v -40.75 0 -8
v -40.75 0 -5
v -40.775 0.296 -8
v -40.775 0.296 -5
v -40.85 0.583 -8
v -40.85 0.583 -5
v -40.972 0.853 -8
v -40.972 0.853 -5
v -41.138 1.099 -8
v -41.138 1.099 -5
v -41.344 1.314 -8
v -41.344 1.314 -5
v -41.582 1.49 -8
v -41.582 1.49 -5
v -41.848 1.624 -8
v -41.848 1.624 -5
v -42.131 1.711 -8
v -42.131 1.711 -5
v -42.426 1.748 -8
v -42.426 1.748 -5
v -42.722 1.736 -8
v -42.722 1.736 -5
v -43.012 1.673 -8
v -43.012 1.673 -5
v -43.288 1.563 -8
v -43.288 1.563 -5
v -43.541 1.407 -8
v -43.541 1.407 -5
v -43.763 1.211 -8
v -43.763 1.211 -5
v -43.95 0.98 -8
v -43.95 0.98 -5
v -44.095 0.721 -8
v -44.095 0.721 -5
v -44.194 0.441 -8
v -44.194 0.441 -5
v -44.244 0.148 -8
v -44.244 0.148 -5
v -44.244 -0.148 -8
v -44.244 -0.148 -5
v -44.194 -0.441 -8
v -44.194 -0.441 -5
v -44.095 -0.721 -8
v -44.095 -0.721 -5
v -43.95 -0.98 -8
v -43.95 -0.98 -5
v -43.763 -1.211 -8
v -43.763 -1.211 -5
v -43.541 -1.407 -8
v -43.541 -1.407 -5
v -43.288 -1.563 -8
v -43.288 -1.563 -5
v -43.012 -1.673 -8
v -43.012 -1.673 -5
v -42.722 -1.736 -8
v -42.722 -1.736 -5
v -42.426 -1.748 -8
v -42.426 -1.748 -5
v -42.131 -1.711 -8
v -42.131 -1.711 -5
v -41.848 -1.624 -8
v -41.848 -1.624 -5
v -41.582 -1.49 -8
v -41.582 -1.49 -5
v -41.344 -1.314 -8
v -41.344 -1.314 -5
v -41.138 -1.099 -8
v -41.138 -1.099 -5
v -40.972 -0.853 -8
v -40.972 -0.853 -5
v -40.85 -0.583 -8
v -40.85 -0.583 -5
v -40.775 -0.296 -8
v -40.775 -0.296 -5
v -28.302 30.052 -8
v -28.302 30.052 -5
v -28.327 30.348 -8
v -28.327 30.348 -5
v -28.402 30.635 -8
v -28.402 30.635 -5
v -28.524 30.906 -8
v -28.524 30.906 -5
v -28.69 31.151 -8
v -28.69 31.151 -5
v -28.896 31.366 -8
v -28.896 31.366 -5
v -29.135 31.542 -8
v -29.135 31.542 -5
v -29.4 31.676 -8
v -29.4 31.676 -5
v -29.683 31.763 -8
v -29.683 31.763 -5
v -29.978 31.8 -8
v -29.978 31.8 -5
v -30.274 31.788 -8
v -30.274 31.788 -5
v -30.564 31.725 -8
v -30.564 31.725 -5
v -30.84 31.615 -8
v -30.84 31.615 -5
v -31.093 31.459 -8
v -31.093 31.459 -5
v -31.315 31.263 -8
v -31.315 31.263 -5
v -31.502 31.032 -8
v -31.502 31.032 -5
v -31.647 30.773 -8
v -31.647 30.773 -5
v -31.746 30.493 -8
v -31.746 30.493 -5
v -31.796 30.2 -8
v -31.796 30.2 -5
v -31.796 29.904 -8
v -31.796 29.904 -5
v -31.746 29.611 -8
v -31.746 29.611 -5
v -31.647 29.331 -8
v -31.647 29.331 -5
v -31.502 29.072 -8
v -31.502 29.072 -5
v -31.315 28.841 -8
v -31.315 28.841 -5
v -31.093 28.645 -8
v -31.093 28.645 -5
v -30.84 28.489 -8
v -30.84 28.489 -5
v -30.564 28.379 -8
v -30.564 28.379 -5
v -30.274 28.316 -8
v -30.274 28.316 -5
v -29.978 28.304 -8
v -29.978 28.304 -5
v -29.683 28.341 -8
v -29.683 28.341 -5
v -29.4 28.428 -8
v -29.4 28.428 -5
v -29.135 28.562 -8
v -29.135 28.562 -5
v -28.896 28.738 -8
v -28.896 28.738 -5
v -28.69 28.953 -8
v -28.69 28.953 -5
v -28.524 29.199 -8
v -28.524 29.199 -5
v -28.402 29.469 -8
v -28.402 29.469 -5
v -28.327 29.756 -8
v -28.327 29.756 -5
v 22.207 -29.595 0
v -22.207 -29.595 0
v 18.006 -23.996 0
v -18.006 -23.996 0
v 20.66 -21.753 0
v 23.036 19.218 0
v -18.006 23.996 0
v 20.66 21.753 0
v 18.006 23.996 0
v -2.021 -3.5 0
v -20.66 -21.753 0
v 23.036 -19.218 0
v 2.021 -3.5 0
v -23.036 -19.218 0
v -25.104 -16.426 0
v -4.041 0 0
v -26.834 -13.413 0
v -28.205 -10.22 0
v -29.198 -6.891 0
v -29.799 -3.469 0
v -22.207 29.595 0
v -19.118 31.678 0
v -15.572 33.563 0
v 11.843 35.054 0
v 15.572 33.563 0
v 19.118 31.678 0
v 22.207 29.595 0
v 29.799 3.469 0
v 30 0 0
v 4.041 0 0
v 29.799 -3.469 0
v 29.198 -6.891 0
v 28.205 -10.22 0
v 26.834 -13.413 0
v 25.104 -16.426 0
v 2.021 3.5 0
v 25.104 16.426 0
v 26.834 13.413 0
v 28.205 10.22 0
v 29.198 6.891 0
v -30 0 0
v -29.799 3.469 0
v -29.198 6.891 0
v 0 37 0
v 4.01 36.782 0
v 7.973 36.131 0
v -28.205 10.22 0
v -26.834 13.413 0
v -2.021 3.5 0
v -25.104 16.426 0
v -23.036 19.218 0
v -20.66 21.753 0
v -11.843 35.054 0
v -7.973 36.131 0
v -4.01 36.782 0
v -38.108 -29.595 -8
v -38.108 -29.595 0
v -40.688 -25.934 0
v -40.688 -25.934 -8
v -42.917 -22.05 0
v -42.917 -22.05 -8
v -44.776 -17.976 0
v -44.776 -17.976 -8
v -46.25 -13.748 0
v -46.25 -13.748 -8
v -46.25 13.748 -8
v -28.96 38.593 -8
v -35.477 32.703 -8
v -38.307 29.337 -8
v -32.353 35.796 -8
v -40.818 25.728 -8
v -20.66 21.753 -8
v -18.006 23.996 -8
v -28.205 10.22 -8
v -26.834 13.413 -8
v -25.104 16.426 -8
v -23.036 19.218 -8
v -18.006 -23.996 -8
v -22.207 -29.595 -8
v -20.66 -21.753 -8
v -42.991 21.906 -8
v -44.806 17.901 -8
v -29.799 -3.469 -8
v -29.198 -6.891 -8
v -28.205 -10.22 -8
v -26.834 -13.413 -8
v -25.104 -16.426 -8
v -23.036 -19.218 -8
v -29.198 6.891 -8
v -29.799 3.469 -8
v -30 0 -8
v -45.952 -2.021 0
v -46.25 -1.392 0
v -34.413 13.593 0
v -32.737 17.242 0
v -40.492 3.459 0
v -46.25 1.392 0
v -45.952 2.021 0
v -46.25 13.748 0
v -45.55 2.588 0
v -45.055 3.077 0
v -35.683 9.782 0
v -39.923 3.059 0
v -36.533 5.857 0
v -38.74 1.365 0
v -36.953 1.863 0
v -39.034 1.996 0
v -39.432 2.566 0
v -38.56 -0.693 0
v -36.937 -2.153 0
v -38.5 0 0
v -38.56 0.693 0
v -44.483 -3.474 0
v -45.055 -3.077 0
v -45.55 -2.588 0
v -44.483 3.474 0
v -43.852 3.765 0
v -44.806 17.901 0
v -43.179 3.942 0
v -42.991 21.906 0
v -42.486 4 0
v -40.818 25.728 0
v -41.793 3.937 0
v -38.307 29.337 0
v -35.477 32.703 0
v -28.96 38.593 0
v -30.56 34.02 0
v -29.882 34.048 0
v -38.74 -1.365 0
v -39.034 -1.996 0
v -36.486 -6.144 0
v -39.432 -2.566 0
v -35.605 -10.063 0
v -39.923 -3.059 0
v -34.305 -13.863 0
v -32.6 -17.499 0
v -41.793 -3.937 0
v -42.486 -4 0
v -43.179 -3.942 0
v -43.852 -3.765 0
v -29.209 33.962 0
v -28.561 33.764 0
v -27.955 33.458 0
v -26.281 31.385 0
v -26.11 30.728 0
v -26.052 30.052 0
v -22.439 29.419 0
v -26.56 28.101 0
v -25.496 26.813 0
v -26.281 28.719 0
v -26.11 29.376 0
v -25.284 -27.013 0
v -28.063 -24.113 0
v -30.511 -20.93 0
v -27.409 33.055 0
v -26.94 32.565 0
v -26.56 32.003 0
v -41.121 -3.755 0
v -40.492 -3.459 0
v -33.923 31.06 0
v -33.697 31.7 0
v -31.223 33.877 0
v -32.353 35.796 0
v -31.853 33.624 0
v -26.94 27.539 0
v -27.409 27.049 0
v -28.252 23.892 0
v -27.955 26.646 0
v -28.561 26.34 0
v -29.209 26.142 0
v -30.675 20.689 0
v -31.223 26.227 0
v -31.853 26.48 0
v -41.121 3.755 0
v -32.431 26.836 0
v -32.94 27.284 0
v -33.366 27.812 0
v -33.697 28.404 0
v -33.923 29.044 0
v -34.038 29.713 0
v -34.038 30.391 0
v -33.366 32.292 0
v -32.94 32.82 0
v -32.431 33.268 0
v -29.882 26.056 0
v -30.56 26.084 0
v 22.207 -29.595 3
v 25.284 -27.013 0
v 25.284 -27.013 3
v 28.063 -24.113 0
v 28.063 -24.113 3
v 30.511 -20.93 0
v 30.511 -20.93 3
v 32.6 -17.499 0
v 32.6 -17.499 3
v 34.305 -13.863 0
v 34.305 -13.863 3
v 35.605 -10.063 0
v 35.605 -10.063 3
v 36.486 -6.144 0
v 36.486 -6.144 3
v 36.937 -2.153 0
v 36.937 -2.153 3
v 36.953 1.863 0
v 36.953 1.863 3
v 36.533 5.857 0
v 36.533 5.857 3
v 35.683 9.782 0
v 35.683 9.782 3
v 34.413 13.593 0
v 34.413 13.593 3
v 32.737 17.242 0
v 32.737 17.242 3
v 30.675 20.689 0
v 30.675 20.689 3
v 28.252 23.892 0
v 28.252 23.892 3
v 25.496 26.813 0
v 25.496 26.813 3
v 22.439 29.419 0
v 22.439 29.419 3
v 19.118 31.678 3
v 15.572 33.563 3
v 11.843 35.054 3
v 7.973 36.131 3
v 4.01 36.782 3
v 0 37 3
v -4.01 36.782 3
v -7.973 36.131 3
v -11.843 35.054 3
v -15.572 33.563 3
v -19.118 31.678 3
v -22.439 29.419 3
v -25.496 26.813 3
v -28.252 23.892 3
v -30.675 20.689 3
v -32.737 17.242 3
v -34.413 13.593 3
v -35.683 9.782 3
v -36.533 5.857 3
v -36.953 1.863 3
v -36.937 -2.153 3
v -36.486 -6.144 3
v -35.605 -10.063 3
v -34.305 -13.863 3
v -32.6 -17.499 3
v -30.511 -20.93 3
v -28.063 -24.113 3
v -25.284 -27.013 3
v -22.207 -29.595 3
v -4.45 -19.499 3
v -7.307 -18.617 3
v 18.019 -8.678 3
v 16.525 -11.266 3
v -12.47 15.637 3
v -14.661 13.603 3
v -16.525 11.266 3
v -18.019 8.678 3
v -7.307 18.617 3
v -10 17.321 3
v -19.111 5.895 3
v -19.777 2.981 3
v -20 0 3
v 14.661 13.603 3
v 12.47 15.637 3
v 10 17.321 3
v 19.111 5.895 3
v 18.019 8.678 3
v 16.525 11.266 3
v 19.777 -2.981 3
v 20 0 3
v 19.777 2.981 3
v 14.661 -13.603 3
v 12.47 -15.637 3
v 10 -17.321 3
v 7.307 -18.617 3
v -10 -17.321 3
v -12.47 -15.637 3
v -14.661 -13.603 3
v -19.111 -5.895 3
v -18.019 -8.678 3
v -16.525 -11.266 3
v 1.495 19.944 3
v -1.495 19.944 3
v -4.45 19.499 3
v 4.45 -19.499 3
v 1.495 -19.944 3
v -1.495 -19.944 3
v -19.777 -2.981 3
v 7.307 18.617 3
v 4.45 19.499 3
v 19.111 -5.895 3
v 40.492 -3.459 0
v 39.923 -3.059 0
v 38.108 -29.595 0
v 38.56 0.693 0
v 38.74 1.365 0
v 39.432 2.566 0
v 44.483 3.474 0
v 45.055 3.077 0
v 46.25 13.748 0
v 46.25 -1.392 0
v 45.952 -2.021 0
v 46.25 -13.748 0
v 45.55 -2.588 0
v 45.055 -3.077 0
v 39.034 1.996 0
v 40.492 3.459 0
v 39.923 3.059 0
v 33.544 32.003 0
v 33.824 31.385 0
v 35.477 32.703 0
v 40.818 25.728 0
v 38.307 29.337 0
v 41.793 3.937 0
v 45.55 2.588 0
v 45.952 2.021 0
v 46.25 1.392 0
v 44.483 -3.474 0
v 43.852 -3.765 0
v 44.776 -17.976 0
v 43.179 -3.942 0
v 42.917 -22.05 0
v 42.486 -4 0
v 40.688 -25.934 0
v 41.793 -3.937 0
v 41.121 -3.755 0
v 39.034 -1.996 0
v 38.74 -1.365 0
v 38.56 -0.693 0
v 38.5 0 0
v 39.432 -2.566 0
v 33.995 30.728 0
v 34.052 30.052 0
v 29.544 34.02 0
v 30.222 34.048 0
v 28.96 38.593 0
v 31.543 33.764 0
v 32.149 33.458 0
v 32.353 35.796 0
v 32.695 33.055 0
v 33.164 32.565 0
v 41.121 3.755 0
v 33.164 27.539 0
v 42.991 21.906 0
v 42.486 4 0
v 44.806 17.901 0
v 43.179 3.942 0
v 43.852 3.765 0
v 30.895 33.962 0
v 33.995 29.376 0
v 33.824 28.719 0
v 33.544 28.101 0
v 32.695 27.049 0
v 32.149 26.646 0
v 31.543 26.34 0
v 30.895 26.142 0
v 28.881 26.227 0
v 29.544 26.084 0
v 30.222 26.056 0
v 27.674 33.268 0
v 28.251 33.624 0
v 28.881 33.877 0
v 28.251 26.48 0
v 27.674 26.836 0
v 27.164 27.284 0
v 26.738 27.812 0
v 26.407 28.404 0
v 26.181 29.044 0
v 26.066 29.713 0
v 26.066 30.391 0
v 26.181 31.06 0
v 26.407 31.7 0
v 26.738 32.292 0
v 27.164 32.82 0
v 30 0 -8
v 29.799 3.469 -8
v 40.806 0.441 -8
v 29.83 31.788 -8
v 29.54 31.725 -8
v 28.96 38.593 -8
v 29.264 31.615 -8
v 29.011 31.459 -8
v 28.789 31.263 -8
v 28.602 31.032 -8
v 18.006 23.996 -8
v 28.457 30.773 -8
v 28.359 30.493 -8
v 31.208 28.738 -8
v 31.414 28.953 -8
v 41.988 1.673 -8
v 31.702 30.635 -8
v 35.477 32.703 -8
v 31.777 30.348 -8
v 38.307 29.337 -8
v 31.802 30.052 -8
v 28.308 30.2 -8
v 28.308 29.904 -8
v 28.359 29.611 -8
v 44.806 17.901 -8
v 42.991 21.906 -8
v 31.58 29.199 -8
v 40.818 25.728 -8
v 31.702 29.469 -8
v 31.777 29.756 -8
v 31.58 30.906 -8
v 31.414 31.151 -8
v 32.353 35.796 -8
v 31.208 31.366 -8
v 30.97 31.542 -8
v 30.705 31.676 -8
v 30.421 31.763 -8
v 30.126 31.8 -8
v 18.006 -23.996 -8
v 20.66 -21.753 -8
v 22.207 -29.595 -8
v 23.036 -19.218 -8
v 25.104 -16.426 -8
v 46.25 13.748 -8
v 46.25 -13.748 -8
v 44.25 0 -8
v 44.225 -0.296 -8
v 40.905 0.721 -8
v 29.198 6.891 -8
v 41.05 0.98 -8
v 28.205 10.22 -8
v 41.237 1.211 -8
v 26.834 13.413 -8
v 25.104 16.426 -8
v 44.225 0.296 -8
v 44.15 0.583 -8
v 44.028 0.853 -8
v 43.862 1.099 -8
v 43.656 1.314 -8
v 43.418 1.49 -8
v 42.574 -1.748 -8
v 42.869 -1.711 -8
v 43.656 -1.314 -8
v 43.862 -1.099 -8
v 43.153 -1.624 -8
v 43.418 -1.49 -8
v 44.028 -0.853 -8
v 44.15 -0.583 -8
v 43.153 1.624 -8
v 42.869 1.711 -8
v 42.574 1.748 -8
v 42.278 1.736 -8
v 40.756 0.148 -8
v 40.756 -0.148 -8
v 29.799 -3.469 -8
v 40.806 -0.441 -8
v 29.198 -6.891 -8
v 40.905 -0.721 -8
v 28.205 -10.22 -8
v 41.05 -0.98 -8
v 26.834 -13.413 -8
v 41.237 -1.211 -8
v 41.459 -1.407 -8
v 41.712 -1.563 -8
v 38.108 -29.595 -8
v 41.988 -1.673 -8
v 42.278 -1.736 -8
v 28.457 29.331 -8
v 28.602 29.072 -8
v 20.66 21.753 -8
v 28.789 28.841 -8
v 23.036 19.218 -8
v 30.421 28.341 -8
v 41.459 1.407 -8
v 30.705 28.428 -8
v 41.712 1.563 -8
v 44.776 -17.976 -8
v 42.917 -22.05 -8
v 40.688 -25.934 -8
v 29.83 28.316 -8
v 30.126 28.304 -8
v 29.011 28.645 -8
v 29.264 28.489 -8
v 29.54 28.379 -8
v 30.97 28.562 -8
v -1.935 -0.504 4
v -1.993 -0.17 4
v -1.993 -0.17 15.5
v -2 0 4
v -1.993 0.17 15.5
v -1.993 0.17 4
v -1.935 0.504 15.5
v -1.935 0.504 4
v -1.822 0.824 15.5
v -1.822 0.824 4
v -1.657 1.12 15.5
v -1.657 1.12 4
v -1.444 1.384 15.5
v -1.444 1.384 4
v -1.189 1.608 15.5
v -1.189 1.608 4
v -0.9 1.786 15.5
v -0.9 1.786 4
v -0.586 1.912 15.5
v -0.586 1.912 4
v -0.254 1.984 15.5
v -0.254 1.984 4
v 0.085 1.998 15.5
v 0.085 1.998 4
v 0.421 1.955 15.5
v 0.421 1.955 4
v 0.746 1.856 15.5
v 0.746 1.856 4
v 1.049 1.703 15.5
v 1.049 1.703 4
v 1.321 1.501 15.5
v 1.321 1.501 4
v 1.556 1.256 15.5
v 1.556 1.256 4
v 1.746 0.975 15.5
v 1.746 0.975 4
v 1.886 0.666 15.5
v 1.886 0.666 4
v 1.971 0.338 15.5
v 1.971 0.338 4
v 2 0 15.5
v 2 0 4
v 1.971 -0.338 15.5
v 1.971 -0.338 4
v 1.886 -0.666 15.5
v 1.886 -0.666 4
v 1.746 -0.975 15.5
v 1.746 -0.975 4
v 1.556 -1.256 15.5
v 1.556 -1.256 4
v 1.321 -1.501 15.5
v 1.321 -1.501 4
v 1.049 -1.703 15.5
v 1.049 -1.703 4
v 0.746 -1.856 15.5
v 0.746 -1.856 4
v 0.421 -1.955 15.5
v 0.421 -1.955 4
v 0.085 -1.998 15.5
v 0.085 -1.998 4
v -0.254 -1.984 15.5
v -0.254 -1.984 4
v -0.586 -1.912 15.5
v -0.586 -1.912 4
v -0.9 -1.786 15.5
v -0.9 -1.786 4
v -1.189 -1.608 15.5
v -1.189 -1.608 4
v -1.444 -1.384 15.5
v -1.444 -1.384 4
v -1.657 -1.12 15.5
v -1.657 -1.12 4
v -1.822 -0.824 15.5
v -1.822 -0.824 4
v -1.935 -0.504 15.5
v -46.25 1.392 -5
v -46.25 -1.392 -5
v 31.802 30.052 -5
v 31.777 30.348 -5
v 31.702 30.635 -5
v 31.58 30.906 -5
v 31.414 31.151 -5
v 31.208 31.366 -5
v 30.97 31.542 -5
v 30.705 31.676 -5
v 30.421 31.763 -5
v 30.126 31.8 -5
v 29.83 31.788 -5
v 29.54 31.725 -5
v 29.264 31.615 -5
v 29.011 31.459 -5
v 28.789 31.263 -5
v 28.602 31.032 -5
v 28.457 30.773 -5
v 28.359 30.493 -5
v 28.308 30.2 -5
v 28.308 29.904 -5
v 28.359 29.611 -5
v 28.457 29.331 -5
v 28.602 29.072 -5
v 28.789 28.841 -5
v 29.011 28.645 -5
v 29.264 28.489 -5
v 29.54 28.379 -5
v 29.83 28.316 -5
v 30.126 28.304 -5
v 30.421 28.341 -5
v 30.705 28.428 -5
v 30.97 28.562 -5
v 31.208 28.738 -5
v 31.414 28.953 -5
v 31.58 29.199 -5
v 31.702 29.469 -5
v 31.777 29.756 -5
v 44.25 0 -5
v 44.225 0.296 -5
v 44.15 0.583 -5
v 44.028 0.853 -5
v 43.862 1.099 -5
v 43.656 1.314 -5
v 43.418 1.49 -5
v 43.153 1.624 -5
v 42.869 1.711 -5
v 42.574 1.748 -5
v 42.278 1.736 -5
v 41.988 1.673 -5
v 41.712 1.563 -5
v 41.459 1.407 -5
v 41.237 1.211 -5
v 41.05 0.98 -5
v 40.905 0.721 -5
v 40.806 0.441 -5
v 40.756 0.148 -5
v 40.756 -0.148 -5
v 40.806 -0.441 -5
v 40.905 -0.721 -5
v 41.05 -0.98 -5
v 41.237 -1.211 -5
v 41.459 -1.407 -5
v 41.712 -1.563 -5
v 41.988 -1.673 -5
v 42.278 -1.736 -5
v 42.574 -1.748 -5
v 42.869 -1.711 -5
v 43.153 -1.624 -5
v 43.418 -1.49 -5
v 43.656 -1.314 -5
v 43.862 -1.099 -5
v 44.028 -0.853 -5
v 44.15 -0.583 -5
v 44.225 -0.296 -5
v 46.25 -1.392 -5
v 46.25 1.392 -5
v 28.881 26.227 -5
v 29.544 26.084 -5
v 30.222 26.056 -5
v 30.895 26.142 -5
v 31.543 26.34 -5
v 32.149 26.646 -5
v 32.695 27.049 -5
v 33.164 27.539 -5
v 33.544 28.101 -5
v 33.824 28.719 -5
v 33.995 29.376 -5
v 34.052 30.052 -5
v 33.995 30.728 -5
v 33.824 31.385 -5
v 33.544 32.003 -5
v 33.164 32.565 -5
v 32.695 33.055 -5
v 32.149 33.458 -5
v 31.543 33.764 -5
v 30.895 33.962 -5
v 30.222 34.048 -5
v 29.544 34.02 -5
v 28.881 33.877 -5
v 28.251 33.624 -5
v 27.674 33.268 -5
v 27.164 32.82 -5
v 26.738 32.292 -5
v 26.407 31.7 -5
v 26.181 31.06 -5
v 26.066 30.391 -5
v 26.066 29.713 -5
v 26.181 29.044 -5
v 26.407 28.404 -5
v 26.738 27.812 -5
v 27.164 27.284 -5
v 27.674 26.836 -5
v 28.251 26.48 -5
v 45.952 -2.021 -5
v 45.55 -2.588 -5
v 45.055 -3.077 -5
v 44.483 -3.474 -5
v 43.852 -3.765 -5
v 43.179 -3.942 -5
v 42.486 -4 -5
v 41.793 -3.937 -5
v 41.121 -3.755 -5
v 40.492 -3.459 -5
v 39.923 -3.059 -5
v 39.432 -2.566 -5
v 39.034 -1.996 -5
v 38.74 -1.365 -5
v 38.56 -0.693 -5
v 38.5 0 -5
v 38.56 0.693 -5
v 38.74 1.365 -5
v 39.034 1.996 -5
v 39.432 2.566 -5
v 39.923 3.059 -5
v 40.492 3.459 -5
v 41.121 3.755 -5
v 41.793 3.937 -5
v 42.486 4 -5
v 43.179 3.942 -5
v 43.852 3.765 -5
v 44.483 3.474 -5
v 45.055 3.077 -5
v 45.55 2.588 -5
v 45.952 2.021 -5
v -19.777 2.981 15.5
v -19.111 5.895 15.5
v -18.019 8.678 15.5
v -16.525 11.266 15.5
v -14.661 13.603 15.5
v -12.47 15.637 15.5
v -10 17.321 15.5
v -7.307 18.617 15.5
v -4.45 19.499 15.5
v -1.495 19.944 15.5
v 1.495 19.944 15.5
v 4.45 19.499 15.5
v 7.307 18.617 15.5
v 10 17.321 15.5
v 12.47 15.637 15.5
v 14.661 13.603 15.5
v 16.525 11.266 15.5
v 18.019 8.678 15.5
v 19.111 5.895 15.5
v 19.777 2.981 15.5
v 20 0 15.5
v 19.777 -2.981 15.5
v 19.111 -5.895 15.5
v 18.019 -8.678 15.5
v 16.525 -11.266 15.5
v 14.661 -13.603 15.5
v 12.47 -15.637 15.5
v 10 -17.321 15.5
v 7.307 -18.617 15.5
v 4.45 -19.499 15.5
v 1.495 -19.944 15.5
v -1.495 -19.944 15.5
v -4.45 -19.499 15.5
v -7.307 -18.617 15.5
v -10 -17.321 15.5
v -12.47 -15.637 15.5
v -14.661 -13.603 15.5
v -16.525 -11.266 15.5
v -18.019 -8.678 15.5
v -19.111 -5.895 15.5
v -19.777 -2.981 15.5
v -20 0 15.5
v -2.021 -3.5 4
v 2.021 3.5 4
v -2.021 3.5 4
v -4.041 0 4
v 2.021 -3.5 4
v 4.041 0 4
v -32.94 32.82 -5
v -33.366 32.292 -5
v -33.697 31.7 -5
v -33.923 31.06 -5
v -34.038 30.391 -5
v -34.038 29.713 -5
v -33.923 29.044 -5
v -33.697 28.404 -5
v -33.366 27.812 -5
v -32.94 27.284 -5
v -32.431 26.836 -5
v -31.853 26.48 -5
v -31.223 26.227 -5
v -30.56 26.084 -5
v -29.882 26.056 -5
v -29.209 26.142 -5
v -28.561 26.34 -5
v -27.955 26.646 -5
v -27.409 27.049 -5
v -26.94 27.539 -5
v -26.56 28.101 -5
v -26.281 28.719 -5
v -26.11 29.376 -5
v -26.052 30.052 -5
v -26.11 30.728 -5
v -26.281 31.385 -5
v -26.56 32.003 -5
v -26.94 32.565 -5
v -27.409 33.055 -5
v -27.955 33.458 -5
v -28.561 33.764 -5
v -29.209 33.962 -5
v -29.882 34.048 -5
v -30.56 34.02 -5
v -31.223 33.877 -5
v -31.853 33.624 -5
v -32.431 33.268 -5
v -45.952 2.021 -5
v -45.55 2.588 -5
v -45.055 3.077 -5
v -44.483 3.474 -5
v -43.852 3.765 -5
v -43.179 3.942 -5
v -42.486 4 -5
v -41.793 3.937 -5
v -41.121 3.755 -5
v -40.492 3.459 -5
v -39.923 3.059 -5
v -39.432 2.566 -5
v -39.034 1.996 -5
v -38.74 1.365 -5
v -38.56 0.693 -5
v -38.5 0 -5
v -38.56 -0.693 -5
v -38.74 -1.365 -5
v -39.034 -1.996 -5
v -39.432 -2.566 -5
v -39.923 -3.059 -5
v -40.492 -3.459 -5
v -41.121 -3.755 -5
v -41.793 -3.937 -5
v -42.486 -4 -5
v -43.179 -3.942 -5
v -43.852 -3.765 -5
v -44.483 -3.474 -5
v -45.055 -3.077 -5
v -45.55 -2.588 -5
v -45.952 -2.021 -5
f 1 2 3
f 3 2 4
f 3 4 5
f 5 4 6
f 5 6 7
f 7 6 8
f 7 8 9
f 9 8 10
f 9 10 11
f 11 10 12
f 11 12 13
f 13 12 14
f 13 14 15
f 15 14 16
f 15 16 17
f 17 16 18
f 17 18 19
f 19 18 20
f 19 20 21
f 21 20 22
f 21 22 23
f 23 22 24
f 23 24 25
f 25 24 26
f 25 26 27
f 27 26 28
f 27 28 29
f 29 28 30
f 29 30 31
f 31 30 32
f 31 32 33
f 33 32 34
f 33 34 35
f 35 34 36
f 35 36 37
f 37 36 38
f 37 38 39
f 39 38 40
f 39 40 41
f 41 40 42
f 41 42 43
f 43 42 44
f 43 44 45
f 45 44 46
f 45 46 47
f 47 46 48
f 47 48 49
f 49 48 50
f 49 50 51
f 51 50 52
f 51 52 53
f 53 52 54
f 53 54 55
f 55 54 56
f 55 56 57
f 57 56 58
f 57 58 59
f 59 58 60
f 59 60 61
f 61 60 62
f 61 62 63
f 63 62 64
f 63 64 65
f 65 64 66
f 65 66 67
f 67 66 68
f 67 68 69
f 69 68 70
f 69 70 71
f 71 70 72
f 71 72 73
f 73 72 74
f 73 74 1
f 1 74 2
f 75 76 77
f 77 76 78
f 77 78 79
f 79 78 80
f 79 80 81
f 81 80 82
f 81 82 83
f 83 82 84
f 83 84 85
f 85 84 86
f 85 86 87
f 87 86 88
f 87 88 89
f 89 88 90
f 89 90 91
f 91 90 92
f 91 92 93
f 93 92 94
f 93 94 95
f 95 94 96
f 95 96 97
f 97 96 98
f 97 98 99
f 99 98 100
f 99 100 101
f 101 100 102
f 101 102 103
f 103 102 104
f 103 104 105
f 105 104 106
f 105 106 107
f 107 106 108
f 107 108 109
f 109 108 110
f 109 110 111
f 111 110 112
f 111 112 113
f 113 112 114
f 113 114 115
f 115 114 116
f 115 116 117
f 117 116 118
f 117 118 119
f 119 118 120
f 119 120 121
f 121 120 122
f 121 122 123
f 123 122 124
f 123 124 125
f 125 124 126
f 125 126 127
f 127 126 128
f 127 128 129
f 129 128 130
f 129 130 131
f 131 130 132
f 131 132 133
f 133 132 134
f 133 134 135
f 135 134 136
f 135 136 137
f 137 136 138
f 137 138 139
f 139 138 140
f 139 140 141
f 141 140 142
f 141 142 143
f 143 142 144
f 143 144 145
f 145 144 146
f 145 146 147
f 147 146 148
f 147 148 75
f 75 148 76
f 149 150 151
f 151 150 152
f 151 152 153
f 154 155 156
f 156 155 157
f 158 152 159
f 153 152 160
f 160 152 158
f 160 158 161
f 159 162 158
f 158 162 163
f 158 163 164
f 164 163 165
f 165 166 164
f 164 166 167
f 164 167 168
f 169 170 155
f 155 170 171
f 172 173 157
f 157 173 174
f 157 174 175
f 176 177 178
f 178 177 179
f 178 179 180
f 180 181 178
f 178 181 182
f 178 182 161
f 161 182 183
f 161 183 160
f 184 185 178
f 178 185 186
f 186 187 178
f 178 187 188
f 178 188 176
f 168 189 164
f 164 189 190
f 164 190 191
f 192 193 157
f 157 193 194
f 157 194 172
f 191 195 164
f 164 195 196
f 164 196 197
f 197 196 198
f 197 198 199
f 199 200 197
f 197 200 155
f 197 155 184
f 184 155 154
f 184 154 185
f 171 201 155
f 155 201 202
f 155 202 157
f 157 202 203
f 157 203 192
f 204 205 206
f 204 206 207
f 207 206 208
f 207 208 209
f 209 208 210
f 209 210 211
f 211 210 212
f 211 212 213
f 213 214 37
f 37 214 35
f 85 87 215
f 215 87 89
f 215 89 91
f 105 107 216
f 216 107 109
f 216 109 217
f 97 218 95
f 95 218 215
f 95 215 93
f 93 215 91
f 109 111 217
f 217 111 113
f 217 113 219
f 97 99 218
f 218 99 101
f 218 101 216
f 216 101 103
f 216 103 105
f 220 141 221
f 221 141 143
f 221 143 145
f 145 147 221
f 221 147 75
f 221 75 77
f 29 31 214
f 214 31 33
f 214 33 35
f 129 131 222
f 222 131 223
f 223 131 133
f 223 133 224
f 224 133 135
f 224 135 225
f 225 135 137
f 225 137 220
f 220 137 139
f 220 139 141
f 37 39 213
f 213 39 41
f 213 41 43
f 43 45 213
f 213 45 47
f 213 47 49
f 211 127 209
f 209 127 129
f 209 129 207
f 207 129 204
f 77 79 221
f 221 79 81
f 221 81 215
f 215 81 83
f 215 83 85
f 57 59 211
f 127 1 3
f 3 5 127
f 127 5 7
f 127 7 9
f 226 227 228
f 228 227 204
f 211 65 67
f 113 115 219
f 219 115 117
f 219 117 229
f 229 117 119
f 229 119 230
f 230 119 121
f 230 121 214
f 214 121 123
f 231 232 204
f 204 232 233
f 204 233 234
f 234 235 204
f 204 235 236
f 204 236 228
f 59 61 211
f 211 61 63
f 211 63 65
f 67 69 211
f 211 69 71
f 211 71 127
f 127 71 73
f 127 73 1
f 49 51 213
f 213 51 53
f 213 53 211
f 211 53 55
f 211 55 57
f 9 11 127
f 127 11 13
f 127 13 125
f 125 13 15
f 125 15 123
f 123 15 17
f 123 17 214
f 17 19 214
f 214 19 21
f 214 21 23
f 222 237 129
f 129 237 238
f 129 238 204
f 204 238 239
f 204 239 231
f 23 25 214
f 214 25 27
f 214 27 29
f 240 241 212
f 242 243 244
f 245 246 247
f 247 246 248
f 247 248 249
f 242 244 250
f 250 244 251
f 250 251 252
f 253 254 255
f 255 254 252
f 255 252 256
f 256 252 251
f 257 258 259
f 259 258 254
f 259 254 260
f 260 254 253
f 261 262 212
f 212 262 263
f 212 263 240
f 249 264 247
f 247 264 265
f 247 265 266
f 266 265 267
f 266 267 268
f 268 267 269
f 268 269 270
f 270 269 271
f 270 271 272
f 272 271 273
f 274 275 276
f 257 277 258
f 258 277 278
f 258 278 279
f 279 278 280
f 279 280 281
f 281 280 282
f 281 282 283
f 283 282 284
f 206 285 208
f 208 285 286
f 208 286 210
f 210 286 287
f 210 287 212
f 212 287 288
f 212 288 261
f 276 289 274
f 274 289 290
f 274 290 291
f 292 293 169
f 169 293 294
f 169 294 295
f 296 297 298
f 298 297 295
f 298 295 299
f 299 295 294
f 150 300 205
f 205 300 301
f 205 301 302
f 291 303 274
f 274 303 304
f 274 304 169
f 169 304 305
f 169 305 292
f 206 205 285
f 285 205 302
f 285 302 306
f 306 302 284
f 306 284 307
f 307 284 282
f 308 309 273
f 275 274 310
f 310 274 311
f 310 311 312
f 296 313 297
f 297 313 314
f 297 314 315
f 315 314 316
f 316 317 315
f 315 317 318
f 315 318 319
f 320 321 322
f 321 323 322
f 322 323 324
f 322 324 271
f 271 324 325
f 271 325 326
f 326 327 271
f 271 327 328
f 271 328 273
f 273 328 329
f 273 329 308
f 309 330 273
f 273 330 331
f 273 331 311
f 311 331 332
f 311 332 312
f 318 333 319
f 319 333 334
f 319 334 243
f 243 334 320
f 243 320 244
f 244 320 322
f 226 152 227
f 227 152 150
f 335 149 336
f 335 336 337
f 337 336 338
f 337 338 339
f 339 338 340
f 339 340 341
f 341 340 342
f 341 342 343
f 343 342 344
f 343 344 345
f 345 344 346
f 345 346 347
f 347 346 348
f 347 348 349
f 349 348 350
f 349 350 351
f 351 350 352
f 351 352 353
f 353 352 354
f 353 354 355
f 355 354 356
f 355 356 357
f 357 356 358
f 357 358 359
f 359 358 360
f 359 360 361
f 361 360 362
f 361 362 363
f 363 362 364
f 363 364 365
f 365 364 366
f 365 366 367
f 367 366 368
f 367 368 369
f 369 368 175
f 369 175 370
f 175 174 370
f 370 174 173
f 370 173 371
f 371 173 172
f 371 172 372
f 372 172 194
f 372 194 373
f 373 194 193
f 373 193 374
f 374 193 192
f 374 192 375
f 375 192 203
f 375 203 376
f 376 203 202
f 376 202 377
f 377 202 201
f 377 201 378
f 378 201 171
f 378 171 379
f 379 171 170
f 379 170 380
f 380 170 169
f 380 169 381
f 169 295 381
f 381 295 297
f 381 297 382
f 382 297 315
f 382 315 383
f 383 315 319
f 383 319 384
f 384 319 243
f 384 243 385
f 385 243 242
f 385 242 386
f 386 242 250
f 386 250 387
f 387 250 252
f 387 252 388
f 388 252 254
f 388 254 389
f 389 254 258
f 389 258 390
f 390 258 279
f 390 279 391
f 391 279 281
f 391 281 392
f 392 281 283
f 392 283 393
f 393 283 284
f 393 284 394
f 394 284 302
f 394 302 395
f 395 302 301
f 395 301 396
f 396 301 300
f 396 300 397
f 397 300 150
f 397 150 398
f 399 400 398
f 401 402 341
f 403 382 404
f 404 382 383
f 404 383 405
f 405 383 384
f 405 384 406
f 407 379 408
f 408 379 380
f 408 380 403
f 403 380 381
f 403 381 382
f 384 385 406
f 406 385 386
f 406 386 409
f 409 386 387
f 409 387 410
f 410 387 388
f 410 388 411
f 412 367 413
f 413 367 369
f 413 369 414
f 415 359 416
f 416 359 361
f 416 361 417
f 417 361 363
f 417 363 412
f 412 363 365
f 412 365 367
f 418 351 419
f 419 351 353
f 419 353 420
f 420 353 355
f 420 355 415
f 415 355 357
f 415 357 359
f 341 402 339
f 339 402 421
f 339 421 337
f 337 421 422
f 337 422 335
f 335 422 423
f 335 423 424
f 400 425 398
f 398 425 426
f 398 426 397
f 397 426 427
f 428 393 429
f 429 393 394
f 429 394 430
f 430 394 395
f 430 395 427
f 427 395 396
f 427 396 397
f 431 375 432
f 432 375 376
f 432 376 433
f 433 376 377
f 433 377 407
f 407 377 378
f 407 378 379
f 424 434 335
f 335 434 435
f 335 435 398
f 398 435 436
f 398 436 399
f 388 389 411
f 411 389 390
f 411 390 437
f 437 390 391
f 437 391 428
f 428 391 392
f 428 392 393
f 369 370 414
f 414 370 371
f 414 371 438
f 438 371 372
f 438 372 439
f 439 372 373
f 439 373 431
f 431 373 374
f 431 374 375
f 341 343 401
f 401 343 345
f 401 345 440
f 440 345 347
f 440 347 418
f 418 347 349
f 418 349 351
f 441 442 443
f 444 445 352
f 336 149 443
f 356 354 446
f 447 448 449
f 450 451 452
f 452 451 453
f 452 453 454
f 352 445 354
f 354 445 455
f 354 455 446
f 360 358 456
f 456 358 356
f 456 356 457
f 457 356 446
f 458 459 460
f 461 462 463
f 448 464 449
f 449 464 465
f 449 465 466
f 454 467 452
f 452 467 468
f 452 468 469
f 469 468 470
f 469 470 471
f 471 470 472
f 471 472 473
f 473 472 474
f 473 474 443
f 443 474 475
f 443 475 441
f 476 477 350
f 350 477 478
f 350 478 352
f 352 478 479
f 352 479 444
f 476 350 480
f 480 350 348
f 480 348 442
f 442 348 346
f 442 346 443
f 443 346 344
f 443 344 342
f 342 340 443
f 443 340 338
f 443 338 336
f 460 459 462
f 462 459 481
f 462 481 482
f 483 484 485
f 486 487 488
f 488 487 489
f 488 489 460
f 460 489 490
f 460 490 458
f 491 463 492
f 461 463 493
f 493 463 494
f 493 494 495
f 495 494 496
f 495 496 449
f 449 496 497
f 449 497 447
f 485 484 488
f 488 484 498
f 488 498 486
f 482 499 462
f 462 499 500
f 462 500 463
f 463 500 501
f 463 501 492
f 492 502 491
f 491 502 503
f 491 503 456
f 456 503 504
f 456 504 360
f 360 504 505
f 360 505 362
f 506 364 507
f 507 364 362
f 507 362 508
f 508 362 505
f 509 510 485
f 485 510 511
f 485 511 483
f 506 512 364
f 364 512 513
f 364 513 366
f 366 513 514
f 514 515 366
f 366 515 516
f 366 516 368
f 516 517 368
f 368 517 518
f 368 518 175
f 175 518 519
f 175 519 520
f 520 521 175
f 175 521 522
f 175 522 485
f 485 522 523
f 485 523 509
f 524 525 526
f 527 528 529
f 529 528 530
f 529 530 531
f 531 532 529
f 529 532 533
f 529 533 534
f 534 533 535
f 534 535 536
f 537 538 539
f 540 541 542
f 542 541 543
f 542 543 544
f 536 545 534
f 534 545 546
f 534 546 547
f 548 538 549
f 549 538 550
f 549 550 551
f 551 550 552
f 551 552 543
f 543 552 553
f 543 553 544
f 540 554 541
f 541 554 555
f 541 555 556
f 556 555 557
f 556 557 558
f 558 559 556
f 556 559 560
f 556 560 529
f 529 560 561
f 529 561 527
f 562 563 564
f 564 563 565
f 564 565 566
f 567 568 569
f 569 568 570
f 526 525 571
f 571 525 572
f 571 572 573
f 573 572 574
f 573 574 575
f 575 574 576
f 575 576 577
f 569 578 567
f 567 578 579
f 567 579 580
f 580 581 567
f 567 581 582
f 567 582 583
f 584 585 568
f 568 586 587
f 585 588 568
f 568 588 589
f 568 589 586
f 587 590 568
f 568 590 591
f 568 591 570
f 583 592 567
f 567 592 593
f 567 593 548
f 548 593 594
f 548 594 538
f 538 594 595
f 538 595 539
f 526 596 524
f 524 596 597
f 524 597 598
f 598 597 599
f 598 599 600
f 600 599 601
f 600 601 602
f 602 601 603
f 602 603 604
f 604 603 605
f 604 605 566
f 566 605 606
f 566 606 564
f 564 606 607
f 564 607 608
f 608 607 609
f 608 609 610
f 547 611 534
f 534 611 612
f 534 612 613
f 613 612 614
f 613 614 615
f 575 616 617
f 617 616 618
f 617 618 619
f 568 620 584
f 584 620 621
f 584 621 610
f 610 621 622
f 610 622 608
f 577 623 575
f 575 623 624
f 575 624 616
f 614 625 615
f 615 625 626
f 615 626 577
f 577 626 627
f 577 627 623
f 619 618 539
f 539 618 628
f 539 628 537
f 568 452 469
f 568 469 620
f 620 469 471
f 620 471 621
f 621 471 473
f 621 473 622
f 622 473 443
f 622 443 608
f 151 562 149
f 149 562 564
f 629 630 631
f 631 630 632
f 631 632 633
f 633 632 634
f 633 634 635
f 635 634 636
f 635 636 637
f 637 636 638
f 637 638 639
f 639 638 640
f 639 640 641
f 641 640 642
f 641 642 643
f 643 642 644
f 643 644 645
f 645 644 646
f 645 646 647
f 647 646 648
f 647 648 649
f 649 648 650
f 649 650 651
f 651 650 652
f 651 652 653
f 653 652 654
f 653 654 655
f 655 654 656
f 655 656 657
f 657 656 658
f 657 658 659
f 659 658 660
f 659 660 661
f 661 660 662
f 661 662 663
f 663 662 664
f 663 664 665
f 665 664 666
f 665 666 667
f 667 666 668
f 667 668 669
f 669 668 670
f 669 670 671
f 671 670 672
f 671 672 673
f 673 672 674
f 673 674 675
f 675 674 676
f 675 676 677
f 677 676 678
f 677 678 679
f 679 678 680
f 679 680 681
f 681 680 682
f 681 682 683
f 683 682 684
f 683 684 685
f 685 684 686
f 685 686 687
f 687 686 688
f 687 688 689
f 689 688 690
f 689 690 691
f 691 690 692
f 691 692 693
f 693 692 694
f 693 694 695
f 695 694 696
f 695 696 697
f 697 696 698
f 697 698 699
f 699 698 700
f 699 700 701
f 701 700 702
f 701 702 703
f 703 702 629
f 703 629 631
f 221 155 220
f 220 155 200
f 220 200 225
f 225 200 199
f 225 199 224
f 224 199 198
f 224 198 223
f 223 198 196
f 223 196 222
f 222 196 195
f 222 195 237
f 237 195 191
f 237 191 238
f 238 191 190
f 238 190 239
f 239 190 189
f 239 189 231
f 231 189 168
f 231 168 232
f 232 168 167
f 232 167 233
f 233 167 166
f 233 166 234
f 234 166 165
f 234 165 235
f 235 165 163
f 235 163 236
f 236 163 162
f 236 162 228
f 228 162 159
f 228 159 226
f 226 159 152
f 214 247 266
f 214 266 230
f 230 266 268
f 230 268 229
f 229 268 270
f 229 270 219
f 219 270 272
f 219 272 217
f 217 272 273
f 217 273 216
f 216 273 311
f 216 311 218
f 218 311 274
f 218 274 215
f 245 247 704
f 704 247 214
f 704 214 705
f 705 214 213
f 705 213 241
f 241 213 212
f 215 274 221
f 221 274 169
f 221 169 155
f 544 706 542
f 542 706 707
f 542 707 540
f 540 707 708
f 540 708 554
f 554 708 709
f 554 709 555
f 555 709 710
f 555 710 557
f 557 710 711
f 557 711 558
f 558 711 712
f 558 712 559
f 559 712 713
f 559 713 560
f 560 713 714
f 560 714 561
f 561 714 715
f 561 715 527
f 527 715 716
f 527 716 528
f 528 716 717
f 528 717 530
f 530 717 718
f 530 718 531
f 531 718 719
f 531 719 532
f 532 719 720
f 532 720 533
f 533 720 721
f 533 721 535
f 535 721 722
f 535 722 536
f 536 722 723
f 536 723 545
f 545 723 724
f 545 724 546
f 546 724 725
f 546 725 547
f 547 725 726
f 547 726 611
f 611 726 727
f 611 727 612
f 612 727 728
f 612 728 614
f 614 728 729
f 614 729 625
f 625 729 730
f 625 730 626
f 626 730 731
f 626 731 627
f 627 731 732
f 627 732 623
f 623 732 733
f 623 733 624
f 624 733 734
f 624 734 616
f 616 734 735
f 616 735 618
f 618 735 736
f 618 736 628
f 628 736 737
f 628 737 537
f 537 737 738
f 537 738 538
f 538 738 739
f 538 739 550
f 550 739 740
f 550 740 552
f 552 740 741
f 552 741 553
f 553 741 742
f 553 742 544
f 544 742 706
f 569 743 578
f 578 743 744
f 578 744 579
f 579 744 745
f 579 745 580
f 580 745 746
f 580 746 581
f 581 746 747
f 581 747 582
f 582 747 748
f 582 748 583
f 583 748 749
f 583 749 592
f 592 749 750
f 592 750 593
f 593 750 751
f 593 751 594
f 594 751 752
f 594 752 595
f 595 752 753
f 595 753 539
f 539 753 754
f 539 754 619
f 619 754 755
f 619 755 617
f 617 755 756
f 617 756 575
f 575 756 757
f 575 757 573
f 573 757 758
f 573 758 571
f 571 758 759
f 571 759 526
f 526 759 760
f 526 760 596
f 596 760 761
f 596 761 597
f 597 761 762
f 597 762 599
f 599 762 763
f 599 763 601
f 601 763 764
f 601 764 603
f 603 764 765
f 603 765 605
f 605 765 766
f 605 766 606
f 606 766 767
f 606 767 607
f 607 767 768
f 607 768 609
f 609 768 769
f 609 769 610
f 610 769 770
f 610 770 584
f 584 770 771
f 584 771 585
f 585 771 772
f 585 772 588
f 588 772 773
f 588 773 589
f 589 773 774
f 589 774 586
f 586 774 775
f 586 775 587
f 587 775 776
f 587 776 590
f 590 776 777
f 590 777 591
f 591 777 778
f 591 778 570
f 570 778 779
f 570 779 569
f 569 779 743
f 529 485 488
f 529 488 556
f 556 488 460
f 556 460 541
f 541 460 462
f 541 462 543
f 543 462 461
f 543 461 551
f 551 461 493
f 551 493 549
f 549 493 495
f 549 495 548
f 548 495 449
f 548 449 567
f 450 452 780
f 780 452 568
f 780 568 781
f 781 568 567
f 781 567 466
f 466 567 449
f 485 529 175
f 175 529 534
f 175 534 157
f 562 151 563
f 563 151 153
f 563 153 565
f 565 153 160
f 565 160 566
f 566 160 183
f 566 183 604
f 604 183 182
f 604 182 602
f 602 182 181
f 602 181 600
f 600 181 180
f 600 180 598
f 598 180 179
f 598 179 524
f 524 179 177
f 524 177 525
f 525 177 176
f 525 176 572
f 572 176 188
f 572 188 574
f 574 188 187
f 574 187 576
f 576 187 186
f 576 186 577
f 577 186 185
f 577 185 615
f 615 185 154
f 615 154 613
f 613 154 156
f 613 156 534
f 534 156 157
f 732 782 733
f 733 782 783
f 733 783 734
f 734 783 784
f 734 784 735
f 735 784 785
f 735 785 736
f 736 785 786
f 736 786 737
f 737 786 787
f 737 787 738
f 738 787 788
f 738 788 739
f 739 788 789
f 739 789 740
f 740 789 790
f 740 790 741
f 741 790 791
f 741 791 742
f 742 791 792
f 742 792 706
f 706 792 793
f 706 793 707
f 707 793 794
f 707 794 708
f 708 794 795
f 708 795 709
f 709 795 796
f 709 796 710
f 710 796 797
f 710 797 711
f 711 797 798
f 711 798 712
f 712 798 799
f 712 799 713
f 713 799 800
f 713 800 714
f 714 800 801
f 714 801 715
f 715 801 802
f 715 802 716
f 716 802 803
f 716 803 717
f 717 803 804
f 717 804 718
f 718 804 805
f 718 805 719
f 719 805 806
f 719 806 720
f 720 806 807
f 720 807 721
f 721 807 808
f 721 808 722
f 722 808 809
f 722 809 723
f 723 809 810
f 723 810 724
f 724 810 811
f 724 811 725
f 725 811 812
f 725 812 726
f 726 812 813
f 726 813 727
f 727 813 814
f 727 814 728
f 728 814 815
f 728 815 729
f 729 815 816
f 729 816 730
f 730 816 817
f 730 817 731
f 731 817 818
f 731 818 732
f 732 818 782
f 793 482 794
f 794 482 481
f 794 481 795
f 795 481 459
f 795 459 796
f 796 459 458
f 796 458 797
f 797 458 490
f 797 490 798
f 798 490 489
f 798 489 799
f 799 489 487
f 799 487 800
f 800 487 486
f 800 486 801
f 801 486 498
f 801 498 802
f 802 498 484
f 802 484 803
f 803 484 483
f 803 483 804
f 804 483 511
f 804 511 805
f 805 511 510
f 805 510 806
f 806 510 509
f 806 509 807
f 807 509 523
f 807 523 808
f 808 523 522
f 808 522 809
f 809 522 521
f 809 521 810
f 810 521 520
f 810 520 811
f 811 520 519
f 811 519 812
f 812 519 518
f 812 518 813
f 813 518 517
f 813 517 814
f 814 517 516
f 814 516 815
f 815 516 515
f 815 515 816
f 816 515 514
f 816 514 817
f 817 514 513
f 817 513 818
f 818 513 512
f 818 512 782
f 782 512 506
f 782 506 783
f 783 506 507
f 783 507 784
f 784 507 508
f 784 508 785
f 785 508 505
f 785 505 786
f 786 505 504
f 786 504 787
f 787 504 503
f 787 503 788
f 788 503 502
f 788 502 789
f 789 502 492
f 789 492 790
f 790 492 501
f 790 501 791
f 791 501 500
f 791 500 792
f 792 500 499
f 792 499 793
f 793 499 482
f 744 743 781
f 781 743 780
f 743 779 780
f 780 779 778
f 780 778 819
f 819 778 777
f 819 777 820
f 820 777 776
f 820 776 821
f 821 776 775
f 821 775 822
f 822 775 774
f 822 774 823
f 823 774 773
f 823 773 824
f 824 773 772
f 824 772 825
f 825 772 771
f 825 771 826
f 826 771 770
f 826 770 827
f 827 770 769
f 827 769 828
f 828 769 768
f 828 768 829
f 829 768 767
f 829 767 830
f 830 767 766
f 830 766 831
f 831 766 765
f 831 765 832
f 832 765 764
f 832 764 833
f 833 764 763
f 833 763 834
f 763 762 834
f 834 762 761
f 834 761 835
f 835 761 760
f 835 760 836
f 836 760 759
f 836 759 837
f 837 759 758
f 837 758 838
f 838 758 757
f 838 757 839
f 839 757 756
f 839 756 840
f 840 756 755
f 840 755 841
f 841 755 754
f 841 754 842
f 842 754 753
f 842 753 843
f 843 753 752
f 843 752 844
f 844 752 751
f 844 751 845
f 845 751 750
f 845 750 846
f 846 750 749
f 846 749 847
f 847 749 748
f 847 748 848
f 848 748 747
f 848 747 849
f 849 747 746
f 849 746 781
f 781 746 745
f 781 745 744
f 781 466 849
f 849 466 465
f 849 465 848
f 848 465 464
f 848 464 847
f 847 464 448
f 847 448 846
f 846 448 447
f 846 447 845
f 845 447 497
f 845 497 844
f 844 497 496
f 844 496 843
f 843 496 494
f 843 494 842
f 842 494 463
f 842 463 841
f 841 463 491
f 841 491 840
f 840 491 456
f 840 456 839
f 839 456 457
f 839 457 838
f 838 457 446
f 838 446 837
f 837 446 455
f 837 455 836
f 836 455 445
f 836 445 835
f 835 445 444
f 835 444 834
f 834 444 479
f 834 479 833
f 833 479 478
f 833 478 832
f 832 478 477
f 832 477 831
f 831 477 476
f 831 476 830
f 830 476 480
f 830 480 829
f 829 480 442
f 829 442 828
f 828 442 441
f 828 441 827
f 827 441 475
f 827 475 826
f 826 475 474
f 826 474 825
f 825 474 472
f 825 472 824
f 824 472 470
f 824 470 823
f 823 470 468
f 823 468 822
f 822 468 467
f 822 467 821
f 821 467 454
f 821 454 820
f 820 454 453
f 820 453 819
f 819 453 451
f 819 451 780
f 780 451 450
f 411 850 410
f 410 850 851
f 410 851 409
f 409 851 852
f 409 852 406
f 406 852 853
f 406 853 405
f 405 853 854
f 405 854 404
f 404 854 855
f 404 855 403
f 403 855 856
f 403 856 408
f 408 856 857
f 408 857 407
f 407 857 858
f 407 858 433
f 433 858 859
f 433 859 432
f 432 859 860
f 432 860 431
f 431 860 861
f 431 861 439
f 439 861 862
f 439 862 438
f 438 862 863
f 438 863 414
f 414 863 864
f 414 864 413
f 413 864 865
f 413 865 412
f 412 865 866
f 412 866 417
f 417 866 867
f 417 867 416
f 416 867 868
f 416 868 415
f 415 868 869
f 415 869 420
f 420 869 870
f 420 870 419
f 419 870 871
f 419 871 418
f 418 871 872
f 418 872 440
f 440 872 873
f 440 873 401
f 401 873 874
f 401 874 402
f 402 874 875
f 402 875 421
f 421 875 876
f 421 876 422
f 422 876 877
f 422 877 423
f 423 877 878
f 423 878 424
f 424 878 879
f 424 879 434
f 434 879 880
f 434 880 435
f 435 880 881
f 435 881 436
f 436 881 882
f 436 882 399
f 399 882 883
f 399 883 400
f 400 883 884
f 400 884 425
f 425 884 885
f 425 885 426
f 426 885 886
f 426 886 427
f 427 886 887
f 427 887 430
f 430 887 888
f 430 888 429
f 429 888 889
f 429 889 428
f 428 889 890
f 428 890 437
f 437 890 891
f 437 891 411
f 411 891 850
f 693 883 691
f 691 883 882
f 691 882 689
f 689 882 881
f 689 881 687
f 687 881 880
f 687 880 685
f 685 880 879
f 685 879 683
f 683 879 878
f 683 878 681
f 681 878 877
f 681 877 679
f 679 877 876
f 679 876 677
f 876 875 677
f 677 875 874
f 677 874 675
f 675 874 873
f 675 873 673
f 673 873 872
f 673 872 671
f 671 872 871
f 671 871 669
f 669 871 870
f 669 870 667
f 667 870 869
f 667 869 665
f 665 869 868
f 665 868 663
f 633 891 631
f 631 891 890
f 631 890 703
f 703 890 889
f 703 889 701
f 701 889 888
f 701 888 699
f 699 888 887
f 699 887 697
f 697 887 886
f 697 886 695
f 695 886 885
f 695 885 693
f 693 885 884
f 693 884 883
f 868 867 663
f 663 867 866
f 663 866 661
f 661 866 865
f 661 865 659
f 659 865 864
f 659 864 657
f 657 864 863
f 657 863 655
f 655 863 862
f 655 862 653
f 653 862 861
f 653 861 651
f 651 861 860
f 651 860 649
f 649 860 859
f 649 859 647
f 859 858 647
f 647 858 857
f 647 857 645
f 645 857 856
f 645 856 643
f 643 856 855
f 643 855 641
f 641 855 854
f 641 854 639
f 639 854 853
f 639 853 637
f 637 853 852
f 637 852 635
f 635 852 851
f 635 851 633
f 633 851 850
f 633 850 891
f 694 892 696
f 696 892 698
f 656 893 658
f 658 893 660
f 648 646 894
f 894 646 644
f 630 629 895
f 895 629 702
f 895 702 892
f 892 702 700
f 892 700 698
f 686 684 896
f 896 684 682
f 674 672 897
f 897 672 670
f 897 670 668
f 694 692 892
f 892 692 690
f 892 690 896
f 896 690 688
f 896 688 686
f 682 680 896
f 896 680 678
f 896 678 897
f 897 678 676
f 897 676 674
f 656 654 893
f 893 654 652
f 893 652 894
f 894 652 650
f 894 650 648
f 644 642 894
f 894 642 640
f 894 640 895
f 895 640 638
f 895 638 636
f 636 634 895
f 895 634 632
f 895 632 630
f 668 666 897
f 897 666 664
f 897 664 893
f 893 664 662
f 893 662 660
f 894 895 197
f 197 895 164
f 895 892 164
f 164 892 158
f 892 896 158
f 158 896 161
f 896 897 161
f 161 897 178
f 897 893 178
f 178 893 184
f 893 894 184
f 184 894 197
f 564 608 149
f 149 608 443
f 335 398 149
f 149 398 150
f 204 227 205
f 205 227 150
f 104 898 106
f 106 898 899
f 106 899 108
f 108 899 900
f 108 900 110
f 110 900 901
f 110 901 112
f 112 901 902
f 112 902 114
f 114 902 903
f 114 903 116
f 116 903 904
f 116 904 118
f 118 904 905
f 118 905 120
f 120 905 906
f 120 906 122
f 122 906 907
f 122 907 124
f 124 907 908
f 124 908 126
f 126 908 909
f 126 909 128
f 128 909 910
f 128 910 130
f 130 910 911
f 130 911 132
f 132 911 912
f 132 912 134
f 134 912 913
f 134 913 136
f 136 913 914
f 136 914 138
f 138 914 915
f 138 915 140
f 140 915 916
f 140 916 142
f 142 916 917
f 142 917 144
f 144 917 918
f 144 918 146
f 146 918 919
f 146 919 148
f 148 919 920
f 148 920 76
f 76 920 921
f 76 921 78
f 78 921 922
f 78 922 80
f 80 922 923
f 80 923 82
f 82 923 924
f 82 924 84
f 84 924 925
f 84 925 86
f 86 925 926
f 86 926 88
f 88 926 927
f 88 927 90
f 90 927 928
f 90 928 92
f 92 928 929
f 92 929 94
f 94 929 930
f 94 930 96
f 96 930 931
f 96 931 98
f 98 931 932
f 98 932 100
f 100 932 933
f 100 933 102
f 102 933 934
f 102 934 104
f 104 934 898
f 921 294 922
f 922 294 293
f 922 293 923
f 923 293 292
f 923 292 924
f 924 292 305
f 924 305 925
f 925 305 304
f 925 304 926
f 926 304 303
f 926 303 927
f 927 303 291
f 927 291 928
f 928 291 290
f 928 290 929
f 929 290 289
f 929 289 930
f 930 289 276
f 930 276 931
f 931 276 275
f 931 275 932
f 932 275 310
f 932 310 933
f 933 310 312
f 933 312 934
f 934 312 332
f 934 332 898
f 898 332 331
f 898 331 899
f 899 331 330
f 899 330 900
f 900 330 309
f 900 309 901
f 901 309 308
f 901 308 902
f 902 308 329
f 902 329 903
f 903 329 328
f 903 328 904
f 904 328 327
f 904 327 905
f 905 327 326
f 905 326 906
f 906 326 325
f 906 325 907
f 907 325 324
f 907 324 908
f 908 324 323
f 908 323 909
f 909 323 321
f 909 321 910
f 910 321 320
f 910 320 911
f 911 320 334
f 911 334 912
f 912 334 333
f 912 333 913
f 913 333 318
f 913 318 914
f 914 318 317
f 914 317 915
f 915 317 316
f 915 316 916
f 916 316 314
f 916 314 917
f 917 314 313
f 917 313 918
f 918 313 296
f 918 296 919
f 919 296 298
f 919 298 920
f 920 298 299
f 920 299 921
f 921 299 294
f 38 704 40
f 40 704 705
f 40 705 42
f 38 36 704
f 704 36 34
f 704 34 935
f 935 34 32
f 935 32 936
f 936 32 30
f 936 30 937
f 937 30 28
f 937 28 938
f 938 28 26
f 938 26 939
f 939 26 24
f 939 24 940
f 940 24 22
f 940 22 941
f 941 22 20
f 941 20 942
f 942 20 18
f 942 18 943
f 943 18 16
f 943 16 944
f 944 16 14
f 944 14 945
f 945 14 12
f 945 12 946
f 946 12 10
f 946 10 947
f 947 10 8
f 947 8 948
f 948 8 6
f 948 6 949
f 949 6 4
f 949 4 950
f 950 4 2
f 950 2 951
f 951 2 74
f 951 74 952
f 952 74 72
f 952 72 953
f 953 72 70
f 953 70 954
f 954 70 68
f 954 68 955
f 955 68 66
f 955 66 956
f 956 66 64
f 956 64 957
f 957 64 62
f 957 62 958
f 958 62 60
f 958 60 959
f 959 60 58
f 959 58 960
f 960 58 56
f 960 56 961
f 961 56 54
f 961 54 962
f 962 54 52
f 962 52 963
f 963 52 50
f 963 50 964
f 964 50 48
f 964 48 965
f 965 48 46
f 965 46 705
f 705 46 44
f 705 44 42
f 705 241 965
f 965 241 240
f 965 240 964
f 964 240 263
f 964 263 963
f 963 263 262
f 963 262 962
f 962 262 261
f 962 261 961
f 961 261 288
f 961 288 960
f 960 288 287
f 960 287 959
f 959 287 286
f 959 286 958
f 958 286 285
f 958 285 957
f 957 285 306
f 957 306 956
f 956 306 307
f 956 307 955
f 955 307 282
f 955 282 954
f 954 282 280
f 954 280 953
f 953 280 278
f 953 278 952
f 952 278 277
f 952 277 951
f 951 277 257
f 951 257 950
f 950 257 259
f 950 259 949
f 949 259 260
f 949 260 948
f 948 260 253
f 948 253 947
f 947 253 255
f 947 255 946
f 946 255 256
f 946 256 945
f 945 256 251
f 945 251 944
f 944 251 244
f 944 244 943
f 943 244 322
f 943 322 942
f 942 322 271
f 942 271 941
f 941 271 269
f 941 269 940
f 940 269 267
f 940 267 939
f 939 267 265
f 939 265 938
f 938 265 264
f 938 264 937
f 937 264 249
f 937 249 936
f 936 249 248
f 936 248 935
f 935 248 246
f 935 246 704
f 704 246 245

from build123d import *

# Parameters (mm, degrees)
SKETCH1_R           = 48.25
BOSS_EXTRUDE1_DEPTH = 8
SKETCH2_W           = 17.162038191
SKETCH2_H           = 56.822210482
SKETCH2_W_2         = 16.152506533
SKETCH2_H_2         = 65.186901365
CUT_EXTRUDE1_DEPTH  = 8
SKETCH3_R           = 30
CUT_EXTRUDE2_DEPTH  = 8
SKETCH4_R           = 1.75
CUT_EXTRUDE3_DEPTH  = 10
CIRPATTERN1_COUNT   = 8
CUT_EXTRUDE4_DEPTH  = 10
CIRPATTERN2_COUNT   = 2
SKETCH10_R          = 4
CUT_EXTRUDE6_DEPTH  = 5
SKETCH11_R          = 37
BOSS_EXTRUDE2_DEPTH = 3
SKETCH12_R          = 20
BOSS_EXTRUDE3_DEPTH = 12.5
SKETCH13_R          = 2
CUT_EXTRUDE8_DEPTH  = 38
CUT_EXTRUDE9_DEPTH  = 4
SKETCH15_W          = 91.603546033
SKETCH15_H          = 22.115690979
CUT_EXTRUDE10_DEPTH = 34
SKETCH9_R           = 4
CUT_EXTRUDE11_DEPTH = 5
SKETCH16_W          = 4.965700005
SKETCH16_H          = 2.207169135
SKETCH16_W_2        = 4.07415349
BOSS_EXTRUDE4_DEPTH = 8


with BuildPart() as part:
    # Sketch1 → Boss-Extrude1 (new body)
    with BuildSketch(Plane.XY):
        Circle(SKETCH1_R)
    extrude(amount=-BOSS_EXTRUDE1_DEPTH)

    # Sketch2 → Cut-Extrude1 (cut)
    with BuildSketch(Plane.XY):
        with Locations((-54.831019095, 0)):
            Rectangle(SKETCH2_W, SKETCH2_H)
        with Locations((54.326253267, -4.182345442)):
            Rectangle(SKETCH2_W_2, SKETCH2_H_2)
    extrude(amount=-CUT_EXTRUDE1_DEPTH, mode=Mode.SUBTRACT)

    # Sketch3 → Cut-Extrude2 (cut)
    with BuildSketch(Plane.XY):
        Circle(SKETCH3_R)
    extrude(amount=-CUT_EXTRUDE2_DEPTH, mode=Mode.SUBTRACT)

    # Sketch4 → Cut-Extrude3 (cut)
    with BuildSketch(Plane.XY):
        with Locations((-42.5, 0)):
            Circle(SKETCH4_R)
    cut_extrude3 = extrude(amount=-CUT_EXTRUDE3_DEPTH, mode=Mode.SUBTRACT)

    # CirPattern1: Cut-Extrude3 ×8 about axis
    cirpattern1_axis = Axis((0, 0, 0), (0, 0, 1))
    for i in range(1, CIRPATTERN1_COUNT):
        add(cut_extrude3.rotate(cirpattern1_axis, i * 360 / CIRPATTERN1_COUNT), mode=Mode.SUBTRACT)

    # Sketch8 → Cut-Extrude4 (cut)
    with BuildSketch(Plane.XY):
        with BuildLine():
            Line((-28.959547499, 38.59283753), (0, 0))
            Line((0, 0), (28.959547499, 38.59283753))
            ThreePointArc((28.959547499, 38.59283753), (0, 48.25), (-28.959547499, 38.59283753))
        make_face()
    cut_extrude4 = extrude(amount=-CUT_EXTRUDE4_DEPTH, mode=Mode.SUBTRACT)

    # CirPattern2: Cut-Extrude4 ×2 about axis
    cirpattern2_axis = Axis((0, 0, 0), (0, 0, 1))
    for i in range(1, CIRPATTERN2_COUNT):
        add(cut_extrude4.rotate(cirpattern2_axis, i * 360 / CIRPATTERN2_COUNT), mode=Mode.SUBTRACT)

    # Sketch10 → Cut-Extrude6 (cut)
    with BuildSketch(Plane.XY):
        with Locations((42.5, 0)):
            Circle(SKETCH10_R)
        with Locations((30.0520382, 30.0520382)):
            Circle(SKETCH10_R)
    extrude(amount=-CUT_EXTRUDE6_DEPTH, mode=Mode.SUBTRACT)

    # Sketch11 → Boss-Extrude2 (add)
    with BuildSketch(Plane.XY):
        with Locations(Location((0, 0, 0), (0, 0, 126.884070759))):
            Circle(SKETCH11_R)
    extrude(amount=BOSS_EXTRUDE2_DEPTH)

    # Sketch12 → Boss-Extrude3 (add)
    with BuildSketch(Plane.XY.offset(3)):
        Circle(SKETCH12_R)
    extrude(amount=BOSS_EXTRUDE3_DEPTH)

    # Sketch13 → Cut-Extrude8 (cut)
    with BuildSketch(Plane.XY.offset(15.5)):
        Circle(SKETCH13_R)
    extrude(amount=-CUT_EXTRUDE8_DEPTH, mode=Mode.SUBTRACT)

    # Sketch14 → Cut-Extrude9 (cut)
    with BuildSketch(Plane(origin=(0, 0, 0), x_dir=(-1, 0, 0), z_dir=(0, 0, -1))):
        Polygon((-2.020725942, -3.5), (2.020725942, -3.5), (4.041451884, 0), (2.020725942, 3.5), (-2.020725942, 3.5), (-4.041451884, 0), align=None)
    extrude(amount=-CUT_EXTRUDE9_DEPTH, mode=Mode.SUBTRACT)

    # Sketch15 → Cut-Extrude10 (cut)
    with BuildSketch(Plane(origin=(0, 0, -8), x_dir=(-1, 0, 0), z_dir=(0, 0, -1))):
        with Locations((2.592277623, -40.652353026)):
            Rectangle(SKETCH15_W, SKETCH15_H)
    extrude(amount=-CUT_EXTRUDE10_DEPTH, mode=Mode.SUBTRACT)

    # Sketch9 → Cut-Extrude11 (cut)
    with BuildSketch(Plane.XY):
        with Locations((-42.5, 0)):
            Circle(SKETCH9_R)
        with Locations((-30.0520382, 30.0520382)):
            Circle(SKETCH9_R)
    extrude(amount=-CUT_EXTRUDE11_DEPTH, mode=Mode.SUBTRACT)

    # Sketch16 → Boss-Extrude4 (add)
    with BuildSketch(Plane.XY):
        with Locations((-30.845756565, -28.490922969)):
            Rectangle(SKETCH16_W, SKETCH16_H)
        with Locations((29.704093094, -28.490922969)):
            Rectangle(SKETCH16_W_2, SKETCH16_H)
    extrude(amount=-BOSS_EXTRUDE4_DEPTH)


solid = part.part
